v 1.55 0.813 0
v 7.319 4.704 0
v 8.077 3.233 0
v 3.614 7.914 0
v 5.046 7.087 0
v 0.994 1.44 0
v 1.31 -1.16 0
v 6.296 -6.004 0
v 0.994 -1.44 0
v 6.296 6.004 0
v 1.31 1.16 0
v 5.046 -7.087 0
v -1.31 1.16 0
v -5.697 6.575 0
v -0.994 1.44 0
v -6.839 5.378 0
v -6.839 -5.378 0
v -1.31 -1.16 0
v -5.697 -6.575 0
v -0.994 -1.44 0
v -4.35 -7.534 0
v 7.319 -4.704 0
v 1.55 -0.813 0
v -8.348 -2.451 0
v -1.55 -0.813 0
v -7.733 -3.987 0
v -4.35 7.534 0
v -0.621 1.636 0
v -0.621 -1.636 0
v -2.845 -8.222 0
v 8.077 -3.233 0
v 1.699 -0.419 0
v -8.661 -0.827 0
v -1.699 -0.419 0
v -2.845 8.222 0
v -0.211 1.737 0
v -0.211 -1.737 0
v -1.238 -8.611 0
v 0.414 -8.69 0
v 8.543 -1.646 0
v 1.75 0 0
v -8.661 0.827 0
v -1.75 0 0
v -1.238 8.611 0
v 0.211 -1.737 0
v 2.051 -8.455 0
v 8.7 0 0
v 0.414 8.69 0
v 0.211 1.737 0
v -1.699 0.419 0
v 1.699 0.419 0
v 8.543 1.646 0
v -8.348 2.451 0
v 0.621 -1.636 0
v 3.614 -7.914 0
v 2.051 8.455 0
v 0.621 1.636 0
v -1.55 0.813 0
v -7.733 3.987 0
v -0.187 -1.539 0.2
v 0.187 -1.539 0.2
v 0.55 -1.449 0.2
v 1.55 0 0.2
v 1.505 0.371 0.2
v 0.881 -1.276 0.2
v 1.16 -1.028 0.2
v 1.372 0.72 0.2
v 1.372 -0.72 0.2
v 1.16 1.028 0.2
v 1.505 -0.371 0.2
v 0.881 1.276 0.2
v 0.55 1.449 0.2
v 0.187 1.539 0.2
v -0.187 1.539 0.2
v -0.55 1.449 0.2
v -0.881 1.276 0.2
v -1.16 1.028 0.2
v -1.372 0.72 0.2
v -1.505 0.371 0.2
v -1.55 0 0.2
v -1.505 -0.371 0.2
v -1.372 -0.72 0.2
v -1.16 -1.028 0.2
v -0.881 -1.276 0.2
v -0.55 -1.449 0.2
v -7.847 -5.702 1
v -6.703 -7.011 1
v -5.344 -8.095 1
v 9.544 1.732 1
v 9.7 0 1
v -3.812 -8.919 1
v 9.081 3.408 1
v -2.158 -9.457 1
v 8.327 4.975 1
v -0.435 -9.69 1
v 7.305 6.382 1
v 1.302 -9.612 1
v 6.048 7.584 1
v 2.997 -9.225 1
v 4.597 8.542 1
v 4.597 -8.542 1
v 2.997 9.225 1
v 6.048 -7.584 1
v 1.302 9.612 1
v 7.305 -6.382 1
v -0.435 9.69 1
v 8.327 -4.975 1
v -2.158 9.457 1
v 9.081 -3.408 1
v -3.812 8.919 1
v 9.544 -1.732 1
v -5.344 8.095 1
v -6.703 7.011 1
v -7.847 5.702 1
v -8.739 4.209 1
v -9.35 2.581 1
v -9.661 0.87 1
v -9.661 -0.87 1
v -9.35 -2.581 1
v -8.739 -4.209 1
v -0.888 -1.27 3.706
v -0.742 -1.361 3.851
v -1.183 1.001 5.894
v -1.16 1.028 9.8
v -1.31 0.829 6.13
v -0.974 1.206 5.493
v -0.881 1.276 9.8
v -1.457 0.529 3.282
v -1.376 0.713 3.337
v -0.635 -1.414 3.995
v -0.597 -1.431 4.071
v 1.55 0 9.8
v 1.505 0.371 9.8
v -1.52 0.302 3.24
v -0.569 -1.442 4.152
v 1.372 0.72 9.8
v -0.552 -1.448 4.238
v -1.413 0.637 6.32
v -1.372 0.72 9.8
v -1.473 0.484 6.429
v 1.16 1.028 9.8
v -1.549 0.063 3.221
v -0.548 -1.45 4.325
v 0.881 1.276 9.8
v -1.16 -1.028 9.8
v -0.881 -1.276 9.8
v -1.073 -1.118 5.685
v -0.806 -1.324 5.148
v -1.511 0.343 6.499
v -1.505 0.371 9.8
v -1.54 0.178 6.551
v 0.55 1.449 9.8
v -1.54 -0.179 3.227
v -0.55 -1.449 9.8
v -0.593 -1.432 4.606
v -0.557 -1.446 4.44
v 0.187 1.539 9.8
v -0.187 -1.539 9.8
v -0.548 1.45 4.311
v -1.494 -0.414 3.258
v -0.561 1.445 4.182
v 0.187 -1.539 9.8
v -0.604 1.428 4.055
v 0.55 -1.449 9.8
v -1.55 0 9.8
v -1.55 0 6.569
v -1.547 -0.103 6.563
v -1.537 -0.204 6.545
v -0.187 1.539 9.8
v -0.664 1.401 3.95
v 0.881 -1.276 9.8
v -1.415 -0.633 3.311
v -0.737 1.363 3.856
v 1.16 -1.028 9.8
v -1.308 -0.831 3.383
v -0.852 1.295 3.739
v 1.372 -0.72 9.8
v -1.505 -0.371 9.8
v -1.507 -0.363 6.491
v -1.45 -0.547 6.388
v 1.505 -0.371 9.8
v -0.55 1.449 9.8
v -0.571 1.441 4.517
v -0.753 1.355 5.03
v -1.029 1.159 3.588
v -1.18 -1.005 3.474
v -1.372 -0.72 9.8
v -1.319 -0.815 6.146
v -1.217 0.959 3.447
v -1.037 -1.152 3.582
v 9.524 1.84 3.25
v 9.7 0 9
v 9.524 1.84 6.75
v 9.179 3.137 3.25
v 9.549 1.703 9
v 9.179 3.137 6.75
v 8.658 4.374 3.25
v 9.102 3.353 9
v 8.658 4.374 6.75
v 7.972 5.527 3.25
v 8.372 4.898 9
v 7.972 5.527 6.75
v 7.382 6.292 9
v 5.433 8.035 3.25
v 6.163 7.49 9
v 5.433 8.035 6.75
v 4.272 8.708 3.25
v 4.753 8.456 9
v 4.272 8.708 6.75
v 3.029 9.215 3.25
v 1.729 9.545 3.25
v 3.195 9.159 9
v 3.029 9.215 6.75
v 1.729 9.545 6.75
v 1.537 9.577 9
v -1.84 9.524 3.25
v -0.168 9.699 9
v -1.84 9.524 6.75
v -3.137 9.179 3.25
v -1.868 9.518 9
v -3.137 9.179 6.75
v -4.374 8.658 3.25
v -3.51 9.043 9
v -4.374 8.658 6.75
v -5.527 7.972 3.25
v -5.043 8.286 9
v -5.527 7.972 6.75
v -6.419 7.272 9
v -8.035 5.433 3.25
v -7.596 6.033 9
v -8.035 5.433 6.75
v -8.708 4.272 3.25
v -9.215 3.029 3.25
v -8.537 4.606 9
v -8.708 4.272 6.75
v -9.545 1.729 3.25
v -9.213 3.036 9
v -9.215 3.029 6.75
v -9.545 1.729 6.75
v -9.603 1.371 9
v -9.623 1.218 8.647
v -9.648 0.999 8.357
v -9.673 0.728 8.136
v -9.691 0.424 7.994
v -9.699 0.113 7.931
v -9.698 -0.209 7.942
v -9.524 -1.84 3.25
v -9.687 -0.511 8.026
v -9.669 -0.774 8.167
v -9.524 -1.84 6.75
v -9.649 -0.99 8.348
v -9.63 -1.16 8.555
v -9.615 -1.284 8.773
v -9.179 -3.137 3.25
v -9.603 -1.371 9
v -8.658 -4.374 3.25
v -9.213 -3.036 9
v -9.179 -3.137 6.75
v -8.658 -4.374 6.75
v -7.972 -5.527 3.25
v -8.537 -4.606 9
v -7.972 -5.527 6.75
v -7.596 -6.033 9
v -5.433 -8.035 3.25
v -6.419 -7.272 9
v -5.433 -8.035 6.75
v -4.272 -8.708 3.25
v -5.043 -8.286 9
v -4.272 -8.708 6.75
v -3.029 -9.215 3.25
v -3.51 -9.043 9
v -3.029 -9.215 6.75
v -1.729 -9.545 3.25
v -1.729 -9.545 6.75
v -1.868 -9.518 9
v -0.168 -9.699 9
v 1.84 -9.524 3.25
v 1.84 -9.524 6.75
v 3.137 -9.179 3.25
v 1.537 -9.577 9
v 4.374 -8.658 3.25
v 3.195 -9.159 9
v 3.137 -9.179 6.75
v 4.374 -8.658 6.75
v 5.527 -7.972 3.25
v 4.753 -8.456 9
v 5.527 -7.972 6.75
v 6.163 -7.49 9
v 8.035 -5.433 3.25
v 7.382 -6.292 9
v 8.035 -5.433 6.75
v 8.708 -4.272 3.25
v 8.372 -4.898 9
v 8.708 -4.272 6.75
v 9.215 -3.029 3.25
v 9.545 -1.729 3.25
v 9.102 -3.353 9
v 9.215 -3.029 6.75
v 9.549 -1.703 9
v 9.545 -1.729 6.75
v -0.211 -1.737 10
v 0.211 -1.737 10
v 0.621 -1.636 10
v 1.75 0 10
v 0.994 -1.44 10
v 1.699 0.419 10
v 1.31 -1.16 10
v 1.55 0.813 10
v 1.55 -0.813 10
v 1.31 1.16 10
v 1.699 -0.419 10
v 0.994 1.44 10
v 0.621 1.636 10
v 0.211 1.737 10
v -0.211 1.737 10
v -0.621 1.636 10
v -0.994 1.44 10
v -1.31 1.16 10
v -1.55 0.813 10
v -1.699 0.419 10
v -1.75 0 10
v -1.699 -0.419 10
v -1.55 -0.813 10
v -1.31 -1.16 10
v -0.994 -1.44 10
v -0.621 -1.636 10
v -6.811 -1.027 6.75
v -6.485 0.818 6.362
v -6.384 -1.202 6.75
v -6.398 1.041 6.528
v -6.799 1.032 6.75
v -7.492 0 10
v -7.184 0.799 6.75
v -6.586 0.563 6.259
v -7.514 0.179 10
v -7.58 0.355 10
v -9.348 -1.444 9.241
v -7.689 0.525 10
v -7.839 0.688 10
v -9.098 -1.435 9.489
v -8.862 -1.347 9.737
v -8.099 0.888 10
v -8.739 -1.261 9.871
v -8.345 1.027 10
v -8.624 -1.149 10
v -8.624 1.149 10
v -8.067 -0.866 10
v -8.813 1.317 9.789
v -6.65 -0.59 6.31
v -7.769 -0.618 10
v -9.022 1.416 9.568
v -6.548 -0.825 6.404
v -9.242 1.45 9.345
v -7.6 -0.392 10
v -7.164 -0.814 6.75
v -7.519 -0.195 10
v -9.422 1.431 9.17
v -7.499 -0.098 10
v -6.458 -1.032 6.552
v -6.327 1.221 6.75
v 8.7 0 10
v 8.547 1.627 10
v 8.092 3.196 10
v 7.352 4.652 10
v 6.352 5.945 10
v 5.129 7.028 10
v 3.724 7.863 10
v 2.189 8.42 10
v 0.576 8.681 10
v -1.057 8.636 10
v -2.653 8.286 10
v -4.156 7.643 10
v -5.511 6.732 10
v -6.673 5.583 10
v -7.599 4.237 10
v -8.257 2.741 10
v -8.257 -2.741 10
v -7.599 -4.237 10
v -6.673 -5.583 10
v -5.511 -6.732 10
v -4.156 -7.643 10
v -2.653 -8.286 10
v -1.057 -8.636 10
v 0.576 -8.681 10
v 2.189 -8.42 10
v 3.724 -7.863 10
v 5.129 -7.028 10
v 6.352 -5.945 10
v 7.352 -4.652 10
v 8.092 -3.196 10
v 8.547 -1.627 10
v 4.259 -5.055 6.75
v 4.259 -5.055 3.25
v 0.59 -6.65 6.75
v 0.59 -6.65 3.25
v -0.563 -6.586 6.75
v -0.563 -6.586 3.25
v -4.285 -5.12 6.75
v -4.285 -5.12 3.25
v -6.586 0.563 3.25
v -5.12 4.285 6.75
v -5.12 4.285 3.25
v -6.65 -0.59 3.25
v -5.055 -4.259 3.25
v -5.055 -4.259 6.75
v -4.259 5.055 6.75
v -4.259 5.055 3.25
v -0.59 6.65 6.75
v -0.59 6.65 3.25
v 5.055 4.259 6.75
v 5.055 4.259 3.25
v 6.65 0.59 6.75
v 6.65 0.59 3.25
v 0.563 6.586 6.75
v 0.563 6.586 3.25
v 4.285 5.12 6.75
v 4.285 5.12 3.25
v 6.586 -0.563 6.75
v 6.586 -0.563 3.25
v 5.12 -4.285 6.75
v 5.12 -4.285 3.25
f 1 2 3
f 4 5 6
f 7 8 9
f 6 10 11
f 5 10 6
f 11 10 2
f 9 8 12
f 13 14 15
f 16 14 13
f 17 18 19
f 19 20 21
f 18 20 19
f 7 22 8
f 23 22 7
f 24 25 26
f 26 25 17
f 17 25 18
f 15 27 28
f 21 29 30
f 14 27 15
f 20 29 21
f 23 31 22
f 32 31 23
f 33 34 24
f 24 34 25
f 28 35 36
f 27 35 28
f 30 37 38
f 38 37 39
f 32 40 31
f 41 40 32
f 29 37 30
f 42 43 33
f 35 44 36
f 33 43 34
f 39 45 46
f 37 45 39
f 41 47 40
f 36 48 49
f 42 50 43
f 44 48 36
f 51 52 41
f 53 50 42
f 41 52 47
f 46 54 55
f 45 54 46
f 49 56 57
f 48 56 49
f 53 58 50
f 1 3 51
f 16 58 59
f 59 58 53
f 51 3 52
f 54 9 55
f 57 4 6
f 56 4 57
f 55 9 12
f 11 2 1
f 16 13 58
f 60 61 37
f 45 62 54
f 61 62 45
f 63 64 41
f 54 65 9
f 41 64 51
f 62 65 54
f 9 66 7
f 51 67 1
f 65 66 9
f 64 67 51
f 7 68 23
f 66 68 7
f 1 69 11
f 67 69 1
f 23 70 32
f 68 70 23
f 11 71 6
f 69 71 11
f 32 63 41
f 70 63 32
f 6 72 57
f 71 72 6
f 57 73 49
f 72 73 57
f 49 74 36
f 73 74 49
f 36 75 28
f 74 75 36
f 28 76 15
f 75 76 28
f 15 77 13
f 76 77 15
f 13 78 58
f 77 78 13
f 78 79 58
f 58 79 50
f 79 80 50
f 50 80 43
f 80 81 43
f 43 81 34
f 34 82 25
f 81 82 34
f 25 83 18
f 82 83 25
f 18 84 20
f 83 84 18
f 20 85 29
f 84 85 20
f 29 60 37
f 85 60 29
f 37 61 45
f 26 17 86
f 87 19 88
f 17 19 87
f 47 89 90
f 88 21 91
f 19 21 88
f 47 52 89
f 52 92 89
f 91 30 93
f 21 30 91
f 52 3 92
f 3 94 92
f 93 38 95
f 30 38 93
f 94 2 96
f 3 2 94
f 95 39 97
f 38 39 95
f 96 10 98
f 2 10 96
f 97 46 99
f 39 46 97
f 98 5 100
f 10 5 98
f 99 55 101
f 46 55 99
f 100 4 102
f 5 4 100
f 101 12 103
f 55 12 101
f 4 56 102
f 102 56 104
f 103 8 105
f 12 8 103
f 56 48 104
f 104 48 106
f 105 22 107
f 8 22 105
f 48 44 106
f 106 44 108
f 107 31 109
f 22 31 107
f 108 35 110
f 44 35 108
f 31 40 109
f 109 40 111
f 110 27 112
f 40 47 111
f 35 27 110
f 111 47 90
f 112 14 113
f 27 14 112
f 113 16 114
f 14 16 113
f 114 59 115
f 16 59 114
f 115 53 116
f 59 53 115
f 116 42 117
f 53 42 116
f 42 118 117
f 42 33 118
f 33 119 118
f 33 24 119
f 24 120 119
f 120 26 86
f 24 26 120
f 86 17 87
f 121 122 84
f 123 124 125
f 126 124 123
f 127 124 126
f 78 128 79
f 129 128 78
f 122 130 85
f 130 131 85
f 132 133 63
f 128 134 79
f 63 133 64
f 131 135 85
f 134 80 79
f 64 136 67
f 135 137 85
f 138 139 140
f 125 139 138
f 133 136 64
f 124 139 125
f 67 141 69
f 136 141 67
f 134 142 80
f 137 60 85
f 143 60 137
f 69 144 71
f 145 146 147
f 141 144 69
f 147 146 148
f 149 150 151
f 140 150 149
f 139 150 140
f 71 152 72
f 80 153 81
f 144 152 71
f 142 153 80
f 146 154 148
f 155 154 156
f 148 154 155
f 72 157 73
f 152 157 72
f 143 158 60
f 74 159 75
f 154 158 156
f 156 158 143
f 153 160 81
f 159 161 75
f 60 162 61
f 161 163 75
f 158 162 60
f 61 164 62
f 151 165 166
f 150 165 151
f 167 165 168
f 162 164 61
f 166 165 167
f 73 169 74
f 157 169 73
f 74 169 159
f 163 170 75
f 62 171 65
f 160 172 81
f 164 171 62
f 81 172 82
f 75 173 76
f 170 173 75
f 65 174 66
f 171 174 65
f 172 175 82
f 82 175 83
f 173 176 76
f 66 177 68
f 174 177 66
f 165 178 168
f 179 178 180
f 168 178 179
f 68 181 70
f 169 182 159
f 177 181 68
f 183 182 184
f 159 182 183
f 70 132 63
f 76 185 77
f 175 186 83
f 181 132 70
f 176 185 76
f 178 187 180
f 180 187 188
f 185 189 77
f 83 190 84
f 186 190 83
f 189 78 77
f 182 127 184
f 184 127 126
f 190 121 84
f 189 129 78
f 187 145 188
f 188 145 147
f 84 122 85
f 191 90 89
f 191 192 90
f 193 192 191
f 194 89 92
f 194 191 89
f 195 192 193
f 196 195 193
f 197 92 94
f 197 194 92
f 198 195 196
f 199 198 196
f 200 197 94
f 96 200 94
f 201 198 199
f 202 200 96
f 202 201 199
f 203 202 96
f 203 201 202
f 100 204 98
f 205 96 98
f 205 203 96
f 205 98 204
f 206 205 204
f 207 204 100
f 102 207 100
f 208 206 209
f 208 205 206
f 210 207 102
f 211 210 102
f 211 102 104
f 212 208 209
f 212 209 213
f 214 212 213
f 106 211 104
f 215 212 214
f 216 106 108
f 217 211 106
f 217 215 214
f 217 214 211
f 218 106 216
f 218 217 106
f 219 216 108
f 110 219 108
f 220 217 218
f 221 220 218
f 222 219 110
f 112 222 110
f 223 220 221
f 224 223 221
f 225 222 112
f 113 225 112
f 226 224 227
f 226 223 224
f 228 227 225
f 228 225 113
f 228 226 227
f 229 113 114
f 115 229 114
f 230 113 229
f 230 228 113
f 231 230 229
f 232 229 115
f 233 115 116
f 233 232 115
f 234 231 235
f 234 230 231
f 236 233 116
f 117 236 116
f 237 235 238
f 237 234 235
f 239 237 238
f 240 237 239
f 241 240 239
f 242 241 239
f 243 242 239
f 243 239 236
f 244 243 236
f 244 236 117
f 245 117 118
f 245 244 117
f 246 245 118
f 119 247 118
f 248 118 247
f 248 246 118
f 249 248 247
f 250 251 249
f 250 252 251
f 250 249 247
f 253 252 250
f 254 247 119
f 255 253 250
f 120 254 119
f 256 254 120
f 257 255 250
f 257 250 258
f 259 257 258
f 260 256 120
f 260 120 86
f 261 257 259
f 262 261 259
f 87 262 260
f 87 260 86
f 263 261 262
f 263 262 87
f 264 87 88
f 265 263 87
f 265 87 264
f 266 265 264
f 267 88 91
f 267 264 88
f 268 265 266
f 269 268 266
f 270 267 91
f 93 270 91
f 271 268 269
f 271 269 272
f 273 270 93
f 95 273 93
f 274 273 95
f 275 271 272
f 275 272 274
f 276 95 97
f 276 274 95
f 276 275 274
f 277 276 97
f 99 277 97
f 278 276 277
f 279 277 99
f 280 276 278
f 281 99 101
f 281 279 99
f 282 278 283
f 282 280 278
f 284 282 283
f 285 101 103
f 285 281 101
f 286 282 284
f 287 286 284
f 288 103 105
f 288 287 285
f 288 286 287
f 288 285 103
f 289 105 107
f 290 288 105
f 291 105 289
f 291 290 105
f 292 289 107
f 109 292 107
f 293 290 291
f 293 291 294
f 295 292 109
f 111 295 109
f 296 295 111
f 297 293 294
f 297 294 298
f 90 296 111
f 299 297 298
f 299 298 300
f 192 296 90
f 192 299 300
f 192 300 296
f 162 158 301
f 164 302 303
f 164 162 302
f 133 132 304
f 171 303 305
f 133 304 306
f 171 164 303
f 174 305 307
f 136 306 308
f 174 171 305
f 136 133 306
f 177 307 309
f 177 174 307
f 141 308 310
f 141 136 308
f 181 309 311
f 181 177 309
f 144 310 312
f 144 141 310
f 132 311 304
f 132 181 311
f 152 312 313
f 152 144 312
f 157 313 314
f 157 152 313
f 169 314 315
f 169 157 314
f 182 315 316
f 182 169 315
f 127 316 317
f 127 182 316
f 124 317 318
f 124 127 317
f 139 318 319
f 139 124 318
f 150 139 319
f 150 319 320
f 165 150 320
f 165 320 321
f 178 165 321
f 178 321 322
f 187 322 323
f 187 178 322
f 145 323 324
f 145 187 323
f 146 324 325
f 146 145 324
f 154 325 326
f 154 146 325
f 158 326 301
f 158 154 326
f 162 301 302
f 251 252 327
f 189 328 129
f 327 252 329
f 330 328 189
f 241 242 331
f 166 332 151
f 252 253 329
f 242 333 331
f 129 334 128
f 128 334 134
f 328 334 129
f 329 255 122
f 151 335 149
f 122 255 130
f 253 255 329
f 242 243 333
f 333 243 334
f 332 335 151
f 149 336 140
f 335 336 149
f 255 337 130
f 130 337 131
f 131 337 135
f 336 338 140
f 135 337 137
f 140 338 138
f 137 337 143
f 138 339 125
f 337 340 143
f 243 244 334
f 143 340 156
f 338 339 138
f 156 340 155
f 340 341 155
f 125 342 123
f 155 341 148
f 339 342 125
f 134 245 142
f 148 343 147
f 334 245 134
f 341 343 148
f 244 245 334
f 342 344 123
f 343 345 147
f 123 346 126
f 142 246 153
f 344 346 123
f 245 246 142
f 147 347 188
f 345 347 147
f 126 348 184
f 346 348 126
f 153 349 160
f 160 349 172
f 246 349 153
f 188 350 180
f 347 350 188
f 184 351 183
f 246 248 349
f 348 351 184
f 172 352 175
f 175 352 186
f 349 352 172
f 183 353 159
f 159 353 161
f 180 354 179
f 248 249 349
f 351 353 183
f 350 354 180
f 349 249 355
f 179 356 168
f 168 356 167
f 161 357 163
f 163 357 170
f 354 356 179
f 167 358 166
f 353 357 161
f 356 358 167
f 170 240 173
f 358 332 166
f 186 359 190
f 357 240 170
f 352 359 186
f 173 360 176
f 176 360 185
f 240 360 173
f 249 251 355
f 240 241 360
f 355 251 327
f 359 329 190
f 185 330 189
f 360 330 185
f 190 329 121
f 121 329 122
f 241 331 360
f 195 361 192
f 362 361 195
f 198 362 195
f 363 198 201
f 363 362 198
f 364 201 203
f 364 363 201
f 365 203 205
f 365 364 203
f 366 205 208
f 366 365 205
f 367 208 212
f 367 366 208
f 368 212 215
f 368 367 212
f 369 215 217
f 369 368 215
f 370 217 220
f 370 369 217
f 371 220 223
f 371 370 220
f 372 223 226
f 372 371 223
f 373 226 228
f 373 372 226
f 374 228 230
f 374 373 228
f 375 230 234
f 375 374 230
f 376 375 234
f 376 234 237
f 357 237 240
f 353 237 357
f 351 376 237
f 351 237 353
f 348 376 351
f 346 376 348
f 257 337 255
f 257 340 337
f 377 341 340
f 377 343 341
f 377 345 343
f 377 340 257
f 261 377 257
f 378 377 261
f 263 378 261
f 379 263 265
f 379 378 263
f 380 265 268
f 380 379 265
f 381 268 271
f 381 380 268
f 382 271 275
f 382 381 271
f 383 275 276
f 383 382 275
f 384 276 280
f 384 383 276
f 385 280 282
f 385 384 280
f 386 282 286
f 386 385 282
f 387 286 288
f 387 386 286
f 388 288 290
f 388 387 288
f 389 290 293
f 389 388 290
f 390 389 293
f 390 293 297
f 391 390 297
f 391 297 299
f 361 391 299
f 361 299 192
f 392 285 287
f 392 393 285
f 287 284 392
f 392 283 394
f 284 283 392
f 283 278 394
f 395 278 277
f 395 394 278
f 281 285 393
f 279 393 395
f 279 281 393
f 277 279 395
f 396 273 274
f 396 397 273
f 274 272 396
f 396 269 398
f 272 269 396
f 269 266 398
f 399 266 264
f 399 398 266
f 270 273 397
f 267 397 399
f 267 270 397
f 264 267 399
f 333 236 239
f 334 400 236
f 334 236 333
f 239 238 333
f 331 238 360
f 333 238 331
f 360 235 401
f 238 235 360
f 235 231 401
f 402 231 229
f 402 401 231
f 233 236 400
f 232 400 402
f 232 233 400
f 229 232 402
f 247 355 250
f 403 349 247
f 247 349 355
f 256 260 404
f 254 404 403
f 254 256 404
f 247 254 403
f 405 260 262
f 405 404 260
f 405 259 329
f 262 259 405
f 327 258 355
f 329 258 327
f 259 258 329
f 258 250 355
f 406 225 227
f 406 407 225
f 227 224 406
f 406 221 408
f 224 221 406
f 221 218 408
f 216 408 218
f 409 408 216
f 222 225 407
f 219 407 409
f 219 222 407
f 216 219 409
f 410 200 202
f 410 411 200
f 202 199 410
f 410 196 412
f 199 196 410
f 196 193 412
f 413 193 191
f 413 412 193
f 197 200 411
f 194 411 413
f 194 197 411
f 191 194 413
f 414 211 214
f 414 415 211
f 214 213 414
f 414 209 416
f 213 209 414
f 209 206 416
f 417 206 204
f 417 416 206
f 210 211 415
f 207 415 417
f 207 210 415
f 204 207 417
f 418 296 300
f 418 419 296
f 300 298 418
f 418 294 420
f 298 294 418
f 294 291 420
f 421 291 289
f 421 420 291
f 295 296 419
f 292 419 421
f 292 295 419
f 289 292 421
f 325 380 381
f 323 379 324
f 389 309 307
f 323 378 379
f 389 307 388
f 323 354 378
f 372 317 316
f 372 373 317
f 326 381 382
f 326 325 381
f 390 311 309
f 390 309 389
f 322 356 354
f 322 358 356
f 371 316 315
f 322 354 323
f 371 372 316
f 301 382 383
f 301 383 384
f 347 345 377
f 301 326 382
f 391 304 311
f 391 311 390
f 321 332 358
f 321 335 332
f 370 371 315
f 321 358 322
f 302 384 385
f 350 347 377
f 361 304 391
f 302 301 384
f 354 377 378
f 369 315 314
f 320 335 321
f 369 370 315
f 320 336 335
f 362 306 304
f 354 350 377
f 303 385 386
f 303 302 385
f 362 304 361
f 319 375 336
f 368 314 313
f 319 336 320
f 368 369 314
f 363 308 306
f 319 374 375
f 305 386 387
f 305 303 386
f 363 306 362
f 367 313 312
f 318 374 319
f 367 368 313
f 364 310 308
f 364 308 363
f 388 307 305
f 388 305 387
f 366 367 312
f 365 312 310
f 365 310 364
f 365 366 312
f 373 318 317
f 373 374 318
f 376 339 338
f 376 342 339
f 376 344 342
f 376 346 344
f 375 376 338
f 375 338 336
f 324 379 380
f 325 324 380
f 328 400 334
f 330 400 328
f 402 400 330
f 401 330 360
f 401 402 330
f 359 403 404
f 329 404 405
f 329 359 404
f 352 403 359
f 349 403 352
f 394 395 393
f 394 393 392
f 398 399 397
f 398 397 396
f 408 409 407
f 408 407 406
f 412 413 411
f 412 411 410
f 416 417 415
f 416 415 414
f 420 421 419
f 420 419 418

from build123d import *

# Parameters (mm, degrees)
BOX001_W                = 4
BOX001_H                = 10
BOX001_DEPTH            = 3.5
BOX001_PLACEMENT_ANGLE  = 1
ARRAY_COUNT             = 8
ARRAY_PLACEMENT_ANGLE   = 22.5
CYLINDER004_R           = 1.45
CYLINDER004_DEPTH       = 50
CYLINDER004_PITCH_ANGLE = -60
CYLINDER002_R           = 1.55
CYLINDER002_DEPTH       = 20
CYLINDER_R              = 9.7
CYLINDER_DEPTH          = 10
CHAMFER_SIZE            = 1
CHAMFER001_SIZE         = 0.2


with BuildPart() as array:
    # Box001 → Box001 (new body)
    with BuildSketch(Plane.XY):
        with Locations((2, 5)):
            Rectangle(BOX001_W, BOX001_H)
    extrude(amount=BOX001_DEPTH)


with BuildPart() as array_1:
    # Box001 placement: moved
    add(array.part.moved(Location((-2, 6.3, 3.25))).rotate(Axis((-2, 6.3, 3.25), (0, 0, 1)), BOX001_PLACEMENT_ANGLE))

    # Array: Array ×8 about axis
    array_axis = Axis((0, 0, 0), (0, 0, 1))


with BuildPart() as array_2:
    add(array_1.part)
    for i in range(1, ARRAY_COUNT):
        add(array_1.part.rotate(array_axis, i * 360 / ARRAY_COUNT))


with BuildPart() as array_3:
    # Array placement: moved
    add(array_2.part.rotate(Axis((0, 0, 0), (0, 0, 1)), ARRAY_PLACEMENT_ANGLE))


with BuildPart() as tornillo:
    # Cylinder004 → Cylinder004 (new body)
    with BuildSketch(Plane.XY):
        Circle(CYLINDER004_R)
    extrude(amount=CYLINDER004_DEPTH)


with BuildPart() as tornillo_1:
    # Cylinder004 pitch: moved
    add(tornillo.part.rotate(Axis((0, 0, 0), (0, 1, 0)), CYLINDER004_PITCH_ANGLE))


with BuildPart() as tornillo_2:
    # Cylinder004 placement: moved
    add(tornillo_1.part.moved(Location((0, 0, 4))))


with BuildPart() as fusion:
    # Cylinder002 → Cylinder002 (new body)
    with BuildSketch(Plane.XY):
        Circle(CYLINDER002_R)
    extrude(amount=CYLINDER002_DEPTH)

    # Fusion: union Array, tornillo
    add(array_3.part)
    add(tornillo_2.part)


with BuildPart() as chamfer001:
    # Cylinder → Cylinder (new body)
    with BuildSketch(Plane.XY):
        Circle(CYLINDER_R)
    extrude(amount=CYLINDER_DEPTH)

    # Chamfer
    chamfer_edges = [chamfer001.edges().sort_by_distance(p)[0] for p in [
        (-9.7, 0, 10),
        (-9.7, 0, 0),
    ]]
    chamfer(chamfer_edges, length=CHAMFER_SIZE)

    # Cut: cut Fusion
    add(fusion.part, mode=Mode.SUBTRACT)

    # Chamfer001
    chamfer001_edges = [chamfer001.edges().sort_by_distance(p)[0] for p in [
        (-1.55, 0, 0),
        (-1.55, 0, 10),
    ]]
    chamfer(chamfer001_edges, length=CHAMFER001_SIZE)


solid = chamfer001.part
